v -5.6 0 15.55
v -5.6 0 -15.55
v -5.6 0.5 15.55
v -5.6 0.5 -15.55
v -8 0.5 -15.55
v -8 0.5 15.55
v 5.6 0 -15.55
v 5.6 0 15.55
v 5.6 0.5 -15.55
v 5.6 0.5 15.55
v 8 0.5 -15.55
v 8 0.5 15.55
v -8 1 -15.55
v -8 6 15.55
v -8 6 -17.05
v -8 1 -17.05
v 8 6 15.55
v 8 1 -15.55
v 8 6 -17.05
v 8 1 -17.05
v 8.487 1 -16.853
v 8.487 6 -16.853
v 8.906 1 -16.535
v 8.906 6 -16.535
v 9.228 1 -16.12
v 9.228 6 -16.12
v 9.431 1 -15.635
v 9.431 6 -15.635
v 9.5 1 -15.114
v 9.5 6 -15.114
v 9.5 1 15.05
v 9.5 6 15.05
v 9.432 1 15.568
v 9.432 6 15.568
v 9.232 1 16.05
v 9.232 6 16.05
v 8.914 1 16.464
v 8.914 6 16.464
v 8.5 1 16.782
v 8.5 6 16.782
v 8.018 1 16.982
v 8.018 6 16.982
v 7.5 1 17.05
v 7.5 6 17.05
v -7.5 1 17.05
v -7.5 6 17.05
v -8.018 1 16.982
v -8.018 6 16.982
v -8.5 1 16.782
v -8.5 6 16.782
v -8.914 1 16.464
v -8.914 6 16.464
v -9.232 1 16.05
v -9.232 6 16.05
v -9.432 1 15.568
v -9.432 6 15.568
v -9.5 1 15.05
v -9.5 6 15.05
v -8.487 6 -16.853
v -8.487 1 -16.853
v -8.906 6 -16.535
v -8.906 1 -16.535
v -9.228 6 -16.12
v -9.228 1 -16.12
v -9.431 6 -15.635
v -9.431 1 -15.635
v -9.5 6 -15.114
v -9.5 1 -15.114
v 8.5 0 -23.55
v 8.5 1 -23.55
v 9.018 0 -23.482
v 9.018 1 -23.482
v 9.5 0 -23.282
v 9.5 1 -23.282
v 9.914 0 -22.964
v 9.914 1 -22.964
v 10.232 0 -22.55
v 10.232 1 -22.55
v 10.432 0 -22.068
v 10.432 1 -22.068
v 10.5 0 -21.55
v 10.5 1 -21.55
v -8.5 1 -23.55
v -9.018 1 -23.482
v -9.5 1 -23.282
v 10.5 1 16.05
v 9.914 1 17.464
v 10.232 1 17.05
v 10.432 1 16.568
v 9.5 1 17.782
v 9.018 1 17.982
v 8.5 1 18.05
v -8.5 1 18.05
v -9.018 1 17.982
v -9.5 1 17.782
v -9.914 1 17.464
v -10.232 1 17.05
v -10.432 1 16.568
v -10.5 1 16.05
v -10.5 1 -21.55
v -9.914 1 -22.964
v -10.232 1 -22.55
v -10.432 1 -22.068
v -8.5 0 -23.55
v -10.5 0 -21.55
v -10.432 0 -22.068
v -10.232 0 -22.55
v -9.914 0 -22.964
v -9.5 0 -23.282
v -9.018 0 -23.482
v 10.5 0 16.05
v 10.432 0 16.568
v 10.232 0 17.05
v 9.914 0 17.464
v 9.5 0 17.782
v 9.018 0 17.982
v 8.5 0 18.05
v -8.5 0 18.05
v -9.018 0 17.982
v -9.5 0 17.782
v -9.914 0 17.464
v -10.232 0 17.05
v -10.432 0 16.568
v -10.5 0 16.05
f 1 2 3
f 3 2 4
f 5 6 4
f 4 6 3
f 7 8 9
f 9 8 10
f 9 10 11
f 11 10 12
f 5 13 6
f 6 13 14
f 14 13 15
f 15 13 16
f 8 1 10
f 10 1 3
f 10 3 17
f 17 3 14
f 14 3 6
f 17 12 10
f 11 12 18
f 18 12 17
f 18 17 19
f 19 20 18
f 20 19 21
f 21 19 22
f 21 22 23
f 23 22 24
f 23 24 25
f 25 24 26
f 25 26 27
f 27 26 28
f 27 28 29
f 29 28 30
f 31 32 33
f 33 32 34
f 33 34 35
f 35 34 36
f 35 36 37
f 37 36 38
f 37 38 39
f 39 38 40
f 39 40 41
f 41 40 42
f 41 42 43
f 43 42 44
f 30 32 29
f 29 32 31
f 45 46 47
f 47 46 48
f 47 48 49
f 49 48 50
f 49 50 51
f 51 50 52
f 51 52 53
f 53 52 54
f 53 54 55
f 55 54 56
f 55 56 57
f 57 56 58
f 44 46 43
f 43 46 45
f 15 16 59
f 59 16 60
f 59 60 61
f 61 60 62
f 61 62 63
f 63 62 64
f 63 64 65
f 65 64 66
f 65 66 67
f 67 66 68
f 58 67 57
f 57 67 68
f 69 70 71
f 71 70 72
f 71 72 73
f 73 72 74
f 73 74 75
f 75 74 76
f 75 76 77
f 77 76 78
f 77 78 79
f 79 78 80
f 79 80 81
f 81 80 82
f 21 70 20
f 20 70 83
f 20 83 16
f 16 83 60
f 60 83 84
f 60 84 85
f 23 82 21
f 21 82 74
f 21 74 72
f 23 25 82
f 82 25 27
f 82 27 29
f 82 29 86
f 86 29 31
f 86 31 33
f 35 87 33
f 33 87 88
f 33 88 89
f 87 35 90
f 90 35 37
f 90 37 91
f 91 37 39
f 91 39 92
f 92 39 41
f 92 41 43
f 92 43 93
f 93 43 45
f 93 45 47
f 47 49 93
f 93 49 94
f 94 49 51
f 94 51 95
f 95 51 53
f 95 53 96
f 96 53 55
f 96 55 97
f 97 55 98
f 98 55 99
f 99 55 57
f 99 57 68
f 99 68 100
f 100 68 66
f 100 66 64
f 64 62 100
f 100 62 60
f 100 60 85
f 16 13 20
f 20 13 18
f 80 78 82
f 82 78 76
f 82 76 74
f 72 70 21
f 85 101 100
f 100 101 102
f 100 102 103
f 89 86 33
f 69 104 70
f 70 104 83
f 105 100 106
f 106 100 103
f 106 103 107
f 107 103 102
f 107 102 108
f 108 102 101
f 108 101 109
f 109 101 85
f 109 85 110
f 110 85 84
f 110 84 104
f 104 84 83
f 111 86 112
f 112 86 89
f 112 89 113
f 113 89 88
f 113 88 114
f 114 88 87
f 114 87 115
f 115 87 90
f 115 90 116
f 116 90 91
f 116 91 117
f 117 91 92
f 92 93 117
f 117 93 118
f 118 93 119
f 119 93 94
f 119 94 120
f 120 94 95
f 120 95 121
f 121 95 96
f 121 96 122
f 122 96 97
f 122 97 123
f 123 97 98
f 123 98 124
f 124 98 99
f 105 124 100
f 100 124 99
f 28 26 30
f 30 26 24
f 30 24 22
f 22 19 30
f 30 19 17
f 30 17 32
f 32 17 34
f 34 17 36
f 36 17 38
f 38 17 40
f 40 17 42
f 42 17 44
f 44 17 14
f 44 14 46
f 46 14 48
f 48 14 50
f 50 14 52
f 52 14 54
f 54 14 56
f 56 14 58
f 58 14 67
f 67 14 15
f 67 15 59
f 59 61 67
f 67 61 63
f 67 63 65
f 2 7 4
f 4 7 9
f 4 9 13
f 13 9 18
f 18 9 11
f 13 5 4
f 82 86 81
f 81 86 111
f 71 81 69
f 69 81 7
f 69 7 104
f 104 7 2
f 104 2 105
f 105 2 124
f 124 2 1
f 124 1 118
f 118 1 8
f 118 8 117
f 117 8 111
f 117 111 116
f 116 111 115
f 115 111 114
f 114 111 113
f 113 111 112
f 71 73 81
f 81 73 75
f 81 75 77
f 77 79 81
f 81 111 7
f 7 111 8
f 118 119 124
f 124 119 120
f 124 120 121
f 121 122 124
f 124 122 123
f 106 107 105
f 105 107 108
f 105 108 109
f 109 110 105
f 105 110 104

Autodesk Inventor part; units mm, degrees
ref_plane "YZ Plane" through (0, 0, 0) normal (1, 0, 0) x (0, 1, 0)
ref_plane "XZ Plane" through (0, 0, 0) normal (0, 1, 0) x (-1, 0, 0)
ref_plane "XY Plane" through (0, 0, 0) normal (0, 0, 1) x (1, 0, 0)
sketch "Boceto1" plane through (0, 0, 0) normal (0, 1, 0) x (-1, 0, 0)
  line L0 (-8, -15.55) -> (8, -15.55)
  line L1 (8, -15.55) -> (8, 15.55)
  line L2 (8, 15.55) -> (-8, 15.55)
  line L3 (-8, 15.55) -> (-8, -15.55)
  line L4 (-8, -15.55) -> (8, 15.55) construction
  line L5 (8, -15.55) -> (-8, 15.55) construction
  line L6 (9.5, 17.05) -> (9.5, -17.05)
  line L7 (9.5, -17.05) -> (-9.5, -17.05)
  line L8 (-9.5, -17.05) -> (-9.5, 17.05)
  line L9 (-9.5, 17.05) -> (9.5, 17.05)
  point P0 (0, 0)
  dimension "d0" = 16
  dimension "d1" = 31.1
  dimension "d2" = 1.5
extrude "Extrusión1" add sketch "Boceto1" along normal blind 6
sketch "Boceto2" plane through (0, 0, 0) normal (0, -1, 0) x (1, 0, 0)
  line L0 (9.5, 17.05) -> (9.5, -17.05) projected
  line L1 (-9.5, 17.05) -> (9.5, 17.05) projected
  line L2 (-9.5, -17.05) -> (-9.5, 17.05) projected
  line L3 (9.5, -17.05) -> (-9.5, -17.05) projected
  line L4 (8, -15.55) -> (8, 15.55) projected
  line L5 (-8, -15.55) -> (8, -15.55) projected
  line L6 (-8, 15.55) -> (-8, -15.55) projected
  line L7 (8, 15.55) -> (-8, 15.55) projected
  line L8 (10.5, 18.05) -> (10.5, -18.05)
  line L9 (10.5, -18.05) -> (-10.5, -18.05)
  line L10 (-10.5, -18.05) -> (-10.5, 18.05)
  line L11 (-10.5, 18.05) -> (10.5, 18.05)
  line L12 (10.5, -18.05) -> (-10.5, -18.05)
  line L13 (-10.5, -18.05) -> (-10.5, -24.55)
  line L14 (-10.5, -24.55) -> (10.5, -24.55)
  line L15 (10.5, -24.55) -> (10.5, -18.05)
  point P0 (0, 0)
  dimension "d5" = 2.5
  dimension "d19" = 6.5
extrude "Extrusión2" add sketch "Boceto2" against normal blind 1 contours L0 L3 L2 L1 | L8 L9 L10 L11
sketch "Boceto8" plane through (0, 0, 0) normal (0, -1, 0) x (1, 0, 0)
  line L0 (10.5, 18.05) -> (10.5, -18.05) projected
  line L1 (10.5, -18.05) -> (-10.5, -18.05)
  line L2 (-10.5, -18.05) -> (-10.5, -23.55)
  line L3 (-10.5, -23.55) -> (10.5, -23.55)
  line L4 (10.5, -23.55) -> (10.5, -18.05)
  point P0 (0, 0)
  dimension "d20" = 21
  dimension "d21" = 5.5
extrude "Extrusión7" add sketch "Boceto8" against normal blind 1
sketch "Boceto9" plane through (0, 6, 0) normal (0, 1, 0) x (1, 0, 0)
  line L0 (9.5, -17.05) -> (9.5, 17.05) projected
  line L1 (9.5, 17.05) -> (-9.5, 17.05) projected
  line L2 (-9.5, 17.05) -> (-9.5, -17.05) projected
  line L3 (-9.5, -17.05) -> (9.5, -17.05) projected
  line L4 (8, 15.55) -> (8, -15.55) projected
  line L5 (8, -15.55) -> (-8, -15.55) projected
  line L6 (-8, -15.55) -> (-8, 15.55) projected
  line L7 (-8, 15.55) -> (8, 15.55) projected
  line L8 (-10.5, -18.05) -> (10.5, -18.05) projected
  line L9 (10.5, -18.05) -> (10.5, 23.55) projected
  line L10 (-9.5, -17.05) -> (9.5, -17.05) projected
  line L11 (-9.5, 17.05) -> (-9.5, -17.05) projected
  line L12 (9.5, 17.05) -> (-9.5, 17.05) projected
  line L13 (9.5, -17.05) -> (9.5, 17.05) projected
  line L14 (-8, 15.55) -> (8, 15.55)
  line L15 (8, 15.55) -> (8, 21.35)
  line L16 (8, 21.35) -> (-8, 21.35)
  line L17 (-8, 21.35) -> (-8, 15.55)
  line L18 (-10.5, 23.55) -> (-10.5, -18.05) projected
  line L19 (10.5, 23.55) -> (-10.5, 23.55) projected
  point P0 (0, 0)
  point P1 (8, 15.55)
  dimension "d24" = 5.8
extrude "Extrusión8" cut sketch "Boceto9" against normal blind 5 contours L15 L7 L17 L1 | L1 L17 L16 L15
fillet "Empalme3" radius 2 4 edges at (-10.5, 0.5, 18.05) (10.5, 0.5, 18.05) (-10.5, 0.5, -23.55) (10.5, 0.5, -23.55)
fillet "Empalme4" radius 2 4 edges at (-9.5, 3.5, -17.05) (-9.5, 3.5, 17.05) (9.5, 3.5, 17.05) (9.5, 3.5, -17.05)
sketch "Boceto10" plane through (0, 0, 0) normal (0, -1, 0) x (1, 0, 0)
  line L0 (8, -15.55) -> (8, 15.55) projected
  line L1 (-8, -15.55) -> (8, -15.55) projected
  line L2 (8, 15.55) -> (5.6, 15.55)
  line L3 (5.6, 15.55) -> (5.6, -15.55)
  line L4 (5.6, -15.55) -> (8, -15.55)
  line L5 (8, -15.55) -> (8, 15.55)
  line L6 (-8, -15.55) -> (-5.6, -15.55)
  line L7 (-5.6, -15.55) -> (-5.6, 15.55)
  line L8 (-5.6, 15.55) -> (-8, 15.55)
  line L9 (-8, 15.55) -> (-8, -15.55)
  point P0 (0, 0)
  dimension "d29" = 2.4
  dimension "d30" = 2.4
  dimension "d31" = 31.1
extrude "Extrusión9" add sketch "Boceto10" against normal blind 0.5
properties part number "Pieza USB Tester"
